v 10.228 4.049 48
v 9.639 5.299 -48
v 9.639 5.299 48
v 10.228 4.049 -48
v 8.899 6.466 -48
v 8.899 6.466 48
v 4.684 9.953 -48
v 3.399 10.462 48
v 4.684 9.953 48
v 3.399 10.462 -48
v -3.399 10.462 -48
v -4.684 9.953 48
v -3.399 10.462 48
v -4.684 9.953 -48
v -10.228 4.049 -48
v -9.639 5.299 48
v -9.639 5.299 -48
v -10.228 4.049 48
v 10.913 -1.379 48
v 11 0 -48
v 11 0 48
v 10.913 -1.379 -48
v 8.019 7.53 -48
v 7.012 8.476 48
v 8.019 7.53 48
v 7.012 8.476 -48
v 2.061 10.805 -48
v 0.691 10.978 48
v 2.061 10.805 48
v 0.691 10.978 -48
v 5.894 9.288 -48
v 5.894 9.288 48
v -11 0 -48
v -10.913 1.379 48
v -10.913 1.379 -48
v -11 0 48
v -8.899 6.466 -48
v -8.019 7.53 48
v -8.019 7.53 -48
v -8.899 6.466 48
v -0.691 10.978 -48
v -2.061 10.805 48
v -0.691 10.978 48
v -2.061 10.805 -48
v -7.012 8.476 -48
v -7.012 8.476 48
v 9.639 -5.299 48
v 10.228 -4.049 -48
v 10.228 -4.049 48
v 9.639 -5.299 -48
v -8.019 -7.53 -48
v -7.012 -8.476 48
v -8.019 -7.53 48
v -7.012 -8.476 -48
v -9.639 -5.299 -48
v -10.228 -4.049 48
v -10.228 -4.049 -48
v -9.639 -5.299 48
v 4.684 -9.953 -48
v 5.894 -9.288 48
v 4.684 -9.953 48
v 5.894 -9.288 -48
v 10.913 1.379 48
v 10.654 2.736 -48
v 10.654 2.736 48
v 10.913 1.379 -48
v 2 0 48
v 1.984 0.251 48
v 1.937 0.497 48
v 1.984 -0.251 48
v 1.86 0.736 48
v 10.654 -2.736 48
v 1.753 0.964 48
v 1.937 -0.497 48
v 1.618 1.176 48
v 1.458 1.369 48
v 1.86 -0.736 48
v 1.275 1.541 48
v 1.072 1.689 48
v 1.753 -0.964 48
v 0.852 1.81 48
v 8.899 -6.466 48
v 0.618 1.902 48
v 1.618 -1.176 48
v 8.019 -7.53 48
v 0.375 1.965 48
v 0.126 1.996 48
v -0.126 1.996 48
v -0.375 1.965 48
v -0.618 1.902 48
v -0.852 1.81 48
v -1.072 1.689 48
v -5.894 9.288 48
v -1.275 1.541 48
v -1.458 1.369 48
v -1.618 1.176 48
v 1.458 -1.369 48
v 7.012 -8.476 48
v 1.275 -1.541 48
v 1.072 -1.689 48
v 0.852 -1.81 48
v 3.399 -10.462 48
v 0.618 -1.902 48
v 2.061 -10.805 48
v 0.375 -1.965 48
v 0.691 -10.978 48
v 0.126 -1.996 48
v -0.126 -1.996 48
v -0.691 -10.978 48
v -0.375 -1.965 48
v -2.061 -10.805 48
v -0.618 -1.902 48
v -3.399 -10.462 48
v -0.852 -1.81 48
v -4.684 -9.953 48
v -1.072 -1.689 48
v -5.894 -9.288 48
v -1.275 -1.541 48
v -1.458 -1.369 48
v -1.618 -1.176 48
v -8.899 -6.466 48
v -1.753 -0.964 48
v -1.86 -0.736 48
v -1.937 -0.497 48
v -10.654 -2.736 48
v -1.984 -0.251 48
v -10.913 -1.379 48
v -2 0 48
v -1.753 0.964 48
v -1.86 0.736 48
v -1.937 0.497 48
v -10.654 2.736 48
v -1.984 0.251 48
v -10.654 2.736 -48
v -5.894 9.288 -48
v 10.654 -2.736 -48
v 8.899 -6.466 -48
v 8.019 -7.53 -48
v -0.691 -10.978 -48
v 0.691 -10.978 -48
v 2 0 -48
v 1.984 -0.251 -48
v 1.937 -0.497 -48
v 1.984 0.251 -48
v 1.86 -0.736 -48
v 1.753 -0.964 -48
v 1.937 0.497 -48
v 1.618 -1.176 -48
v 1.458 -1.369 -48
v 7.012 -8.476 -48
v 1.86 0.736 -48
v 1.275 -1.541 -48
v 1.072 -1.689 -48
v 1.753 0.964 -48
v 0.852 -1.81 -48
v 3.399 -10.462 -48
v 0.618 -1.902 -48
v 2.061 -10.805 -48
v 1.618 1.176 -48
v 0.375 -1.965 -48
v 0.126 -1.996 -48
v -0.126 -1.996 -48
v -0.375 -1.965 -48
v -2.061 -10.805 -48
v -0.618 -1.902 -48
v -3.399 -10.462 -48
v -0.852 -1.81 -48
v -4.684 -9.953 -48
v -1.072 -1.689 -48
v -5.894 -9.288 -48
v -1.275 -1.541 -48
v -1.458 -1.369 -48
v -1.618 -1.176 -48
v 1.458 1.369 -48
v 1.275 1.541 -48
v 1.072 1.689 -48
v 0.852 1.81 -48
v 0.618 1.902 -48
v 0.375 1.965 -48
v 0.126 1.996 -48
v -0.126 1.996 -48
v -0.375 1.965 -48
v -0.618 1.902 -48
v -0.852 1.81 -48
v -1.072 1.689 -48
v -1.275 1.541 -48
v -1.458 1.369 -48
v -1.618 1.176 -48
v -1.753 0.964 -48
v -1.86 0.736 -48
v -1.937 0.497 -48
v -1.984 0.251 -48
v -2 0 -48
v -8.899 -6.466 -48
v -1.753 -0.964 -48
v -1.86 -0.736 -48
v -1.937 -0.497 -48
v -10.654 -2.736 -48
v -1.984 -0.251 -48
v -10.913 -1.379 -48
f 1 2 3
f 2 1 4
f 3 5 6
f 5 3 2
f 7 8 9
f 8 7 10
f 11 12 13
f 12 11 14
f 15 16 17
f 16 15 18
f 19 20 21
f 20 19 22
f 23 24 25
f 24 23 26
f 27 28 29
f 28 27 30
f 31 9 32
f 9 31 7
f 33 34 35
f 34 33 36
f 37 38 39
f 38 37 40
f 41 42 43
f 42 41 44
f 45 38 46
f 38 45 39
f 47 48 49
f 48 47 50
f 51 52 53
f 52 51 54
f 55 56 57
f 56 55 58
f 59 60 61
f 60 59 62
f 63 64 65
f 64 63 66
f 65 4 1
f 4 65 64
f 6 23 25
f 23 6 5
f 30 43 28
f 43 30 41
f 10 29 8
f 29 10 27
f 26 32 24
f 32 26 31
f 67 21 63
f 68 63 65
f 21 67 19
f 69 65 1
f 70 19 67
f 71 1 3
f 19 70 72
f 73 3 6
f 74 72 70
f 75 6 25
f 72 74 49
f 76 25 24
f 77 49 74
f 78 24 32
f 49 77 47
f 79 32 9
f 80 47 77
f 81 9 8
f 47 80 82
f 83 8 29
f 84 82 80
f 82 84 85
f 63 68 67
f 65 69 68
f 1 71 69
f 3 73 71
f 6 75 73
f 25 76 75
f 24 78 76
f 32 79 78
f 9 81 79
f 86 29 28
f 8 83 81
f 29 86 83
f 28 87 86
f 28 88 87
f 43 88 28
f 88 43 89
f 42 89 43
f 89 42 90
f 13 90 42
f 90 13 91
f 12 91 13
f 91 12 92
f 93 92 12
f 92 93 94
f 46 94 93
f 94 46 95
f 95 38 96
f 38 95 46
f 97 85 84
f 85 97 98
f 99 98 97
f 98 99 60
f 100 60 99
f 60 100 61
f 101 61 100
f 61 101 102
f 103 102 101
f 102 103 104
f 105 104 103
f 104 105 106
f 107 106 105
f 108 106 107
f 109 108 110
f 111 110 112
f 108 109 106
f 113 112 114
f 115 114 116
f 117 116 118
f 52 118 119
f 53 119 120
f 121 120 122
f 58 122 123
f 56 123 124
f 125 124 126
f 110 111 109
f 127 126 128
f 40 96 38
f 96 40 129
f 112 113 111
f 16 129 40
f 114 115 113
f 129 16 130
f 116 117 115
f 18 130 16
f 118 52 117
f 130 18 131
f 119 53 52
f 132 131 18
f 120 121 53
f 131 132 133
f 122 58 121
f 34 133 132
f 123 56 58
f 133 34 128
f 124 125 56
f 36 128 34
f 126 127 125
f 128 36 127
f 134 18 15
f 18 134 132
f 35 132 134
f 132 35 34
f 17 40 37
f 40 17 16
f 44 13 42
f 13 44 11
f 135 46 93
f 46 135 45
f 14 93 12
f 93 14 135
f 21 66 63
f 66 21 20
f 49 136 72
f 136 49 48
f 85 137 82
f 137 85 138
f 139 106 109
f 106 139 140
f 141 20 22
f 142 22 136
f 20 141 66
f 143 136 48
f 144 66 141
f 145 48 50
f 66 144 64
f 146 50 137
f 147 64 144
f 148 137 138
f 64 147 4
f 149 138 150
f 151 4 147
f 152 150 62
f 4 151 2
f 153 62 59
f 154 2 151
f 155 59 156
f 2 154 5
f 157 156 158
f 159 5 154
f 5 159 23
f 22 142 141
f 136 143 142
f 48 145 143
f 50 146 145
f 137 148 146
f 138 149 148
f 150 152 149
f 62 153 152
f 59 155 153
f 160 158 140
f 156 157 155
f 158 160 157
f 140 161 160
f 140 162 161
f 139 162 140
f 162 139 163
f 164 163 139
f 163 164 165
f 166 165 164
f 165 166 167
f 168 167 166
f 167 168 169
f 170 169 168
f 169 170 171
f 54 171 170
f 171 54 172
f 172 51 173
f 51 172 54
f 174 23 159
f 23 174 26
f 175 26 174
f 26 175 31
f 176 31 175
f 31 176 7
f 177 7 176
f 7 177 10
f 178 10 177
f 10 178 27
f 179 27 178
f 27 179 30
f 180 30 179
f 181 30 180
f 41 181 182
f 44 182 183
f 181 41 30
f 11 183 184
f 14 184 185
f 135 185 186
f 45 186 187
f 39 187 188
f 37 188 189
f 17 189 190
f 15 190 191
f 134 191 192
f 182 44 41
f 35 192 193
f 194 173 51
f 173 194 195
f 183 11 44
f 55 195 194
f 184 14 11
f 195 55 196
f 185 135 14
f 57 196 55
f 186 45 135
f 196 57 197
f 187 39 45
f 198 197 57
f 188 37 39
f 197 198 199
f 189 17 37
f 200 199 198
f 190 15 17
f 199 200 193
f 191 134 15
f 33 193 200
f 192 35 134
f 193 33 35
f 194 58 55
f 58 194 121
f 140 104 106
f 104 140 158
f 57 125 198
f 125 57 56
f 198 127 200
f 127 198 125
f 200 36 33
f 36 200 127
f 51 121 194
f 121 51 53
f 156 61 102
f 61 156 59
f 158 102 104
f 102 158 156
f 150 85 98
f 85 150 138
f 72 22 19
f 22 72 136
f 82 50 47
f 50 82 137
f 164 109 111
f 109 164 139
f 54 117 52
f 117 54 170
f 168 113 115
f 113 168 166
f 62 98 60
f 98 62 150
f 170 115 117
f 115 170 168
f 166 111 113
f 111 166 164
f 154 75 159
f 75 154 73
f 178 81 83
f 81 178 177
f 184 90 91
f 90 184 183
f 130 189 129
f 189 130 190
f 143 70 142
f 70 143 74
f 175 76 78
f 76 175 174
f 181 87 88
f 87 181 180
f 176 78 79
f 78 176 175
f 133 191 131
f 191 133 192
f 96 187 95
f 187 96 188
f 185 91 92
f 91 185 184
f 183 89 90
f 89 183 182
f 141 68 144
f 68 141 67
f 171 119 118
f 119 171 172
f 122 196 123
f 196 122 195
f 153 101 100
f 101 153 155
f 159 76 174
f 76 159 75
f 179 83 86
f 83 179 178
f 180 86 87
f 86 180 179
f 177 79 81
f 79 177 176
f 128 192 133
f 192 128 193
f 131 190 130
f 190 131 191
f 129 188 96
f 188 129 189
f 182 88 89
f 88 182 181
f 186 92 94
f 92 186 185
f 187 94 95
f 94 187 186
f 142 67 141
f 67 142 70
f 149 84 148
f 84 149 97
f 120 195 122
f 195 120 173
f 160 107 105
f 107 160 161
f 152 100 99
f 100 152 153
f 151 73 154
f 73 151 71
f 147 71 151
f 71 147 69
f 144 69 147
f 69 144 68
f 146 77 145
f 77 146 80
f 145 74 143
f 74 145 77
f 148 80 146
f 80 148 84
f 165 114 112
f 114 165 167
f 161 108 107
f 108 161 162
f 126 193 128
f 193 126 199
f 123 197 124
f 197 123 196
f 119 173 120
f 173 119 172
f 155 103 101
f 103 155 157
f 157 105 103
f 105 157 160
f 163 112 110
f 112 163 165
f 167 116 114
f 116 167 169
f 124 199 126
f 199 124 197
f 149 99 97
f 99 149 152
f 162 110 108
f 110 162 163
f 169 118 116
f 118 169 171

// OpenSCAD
$fn = 50;


difference() {
	union() {
		translate(v = [0, 0, -48.0000000000]) {
			cylinder(h = 96, r = 11.0000000000);
		}
	}
	union() {
		translate(v = [0, 0, -100.0000000000]) {
			cylinder(h = 200, r = 2);
		}
	}
}
